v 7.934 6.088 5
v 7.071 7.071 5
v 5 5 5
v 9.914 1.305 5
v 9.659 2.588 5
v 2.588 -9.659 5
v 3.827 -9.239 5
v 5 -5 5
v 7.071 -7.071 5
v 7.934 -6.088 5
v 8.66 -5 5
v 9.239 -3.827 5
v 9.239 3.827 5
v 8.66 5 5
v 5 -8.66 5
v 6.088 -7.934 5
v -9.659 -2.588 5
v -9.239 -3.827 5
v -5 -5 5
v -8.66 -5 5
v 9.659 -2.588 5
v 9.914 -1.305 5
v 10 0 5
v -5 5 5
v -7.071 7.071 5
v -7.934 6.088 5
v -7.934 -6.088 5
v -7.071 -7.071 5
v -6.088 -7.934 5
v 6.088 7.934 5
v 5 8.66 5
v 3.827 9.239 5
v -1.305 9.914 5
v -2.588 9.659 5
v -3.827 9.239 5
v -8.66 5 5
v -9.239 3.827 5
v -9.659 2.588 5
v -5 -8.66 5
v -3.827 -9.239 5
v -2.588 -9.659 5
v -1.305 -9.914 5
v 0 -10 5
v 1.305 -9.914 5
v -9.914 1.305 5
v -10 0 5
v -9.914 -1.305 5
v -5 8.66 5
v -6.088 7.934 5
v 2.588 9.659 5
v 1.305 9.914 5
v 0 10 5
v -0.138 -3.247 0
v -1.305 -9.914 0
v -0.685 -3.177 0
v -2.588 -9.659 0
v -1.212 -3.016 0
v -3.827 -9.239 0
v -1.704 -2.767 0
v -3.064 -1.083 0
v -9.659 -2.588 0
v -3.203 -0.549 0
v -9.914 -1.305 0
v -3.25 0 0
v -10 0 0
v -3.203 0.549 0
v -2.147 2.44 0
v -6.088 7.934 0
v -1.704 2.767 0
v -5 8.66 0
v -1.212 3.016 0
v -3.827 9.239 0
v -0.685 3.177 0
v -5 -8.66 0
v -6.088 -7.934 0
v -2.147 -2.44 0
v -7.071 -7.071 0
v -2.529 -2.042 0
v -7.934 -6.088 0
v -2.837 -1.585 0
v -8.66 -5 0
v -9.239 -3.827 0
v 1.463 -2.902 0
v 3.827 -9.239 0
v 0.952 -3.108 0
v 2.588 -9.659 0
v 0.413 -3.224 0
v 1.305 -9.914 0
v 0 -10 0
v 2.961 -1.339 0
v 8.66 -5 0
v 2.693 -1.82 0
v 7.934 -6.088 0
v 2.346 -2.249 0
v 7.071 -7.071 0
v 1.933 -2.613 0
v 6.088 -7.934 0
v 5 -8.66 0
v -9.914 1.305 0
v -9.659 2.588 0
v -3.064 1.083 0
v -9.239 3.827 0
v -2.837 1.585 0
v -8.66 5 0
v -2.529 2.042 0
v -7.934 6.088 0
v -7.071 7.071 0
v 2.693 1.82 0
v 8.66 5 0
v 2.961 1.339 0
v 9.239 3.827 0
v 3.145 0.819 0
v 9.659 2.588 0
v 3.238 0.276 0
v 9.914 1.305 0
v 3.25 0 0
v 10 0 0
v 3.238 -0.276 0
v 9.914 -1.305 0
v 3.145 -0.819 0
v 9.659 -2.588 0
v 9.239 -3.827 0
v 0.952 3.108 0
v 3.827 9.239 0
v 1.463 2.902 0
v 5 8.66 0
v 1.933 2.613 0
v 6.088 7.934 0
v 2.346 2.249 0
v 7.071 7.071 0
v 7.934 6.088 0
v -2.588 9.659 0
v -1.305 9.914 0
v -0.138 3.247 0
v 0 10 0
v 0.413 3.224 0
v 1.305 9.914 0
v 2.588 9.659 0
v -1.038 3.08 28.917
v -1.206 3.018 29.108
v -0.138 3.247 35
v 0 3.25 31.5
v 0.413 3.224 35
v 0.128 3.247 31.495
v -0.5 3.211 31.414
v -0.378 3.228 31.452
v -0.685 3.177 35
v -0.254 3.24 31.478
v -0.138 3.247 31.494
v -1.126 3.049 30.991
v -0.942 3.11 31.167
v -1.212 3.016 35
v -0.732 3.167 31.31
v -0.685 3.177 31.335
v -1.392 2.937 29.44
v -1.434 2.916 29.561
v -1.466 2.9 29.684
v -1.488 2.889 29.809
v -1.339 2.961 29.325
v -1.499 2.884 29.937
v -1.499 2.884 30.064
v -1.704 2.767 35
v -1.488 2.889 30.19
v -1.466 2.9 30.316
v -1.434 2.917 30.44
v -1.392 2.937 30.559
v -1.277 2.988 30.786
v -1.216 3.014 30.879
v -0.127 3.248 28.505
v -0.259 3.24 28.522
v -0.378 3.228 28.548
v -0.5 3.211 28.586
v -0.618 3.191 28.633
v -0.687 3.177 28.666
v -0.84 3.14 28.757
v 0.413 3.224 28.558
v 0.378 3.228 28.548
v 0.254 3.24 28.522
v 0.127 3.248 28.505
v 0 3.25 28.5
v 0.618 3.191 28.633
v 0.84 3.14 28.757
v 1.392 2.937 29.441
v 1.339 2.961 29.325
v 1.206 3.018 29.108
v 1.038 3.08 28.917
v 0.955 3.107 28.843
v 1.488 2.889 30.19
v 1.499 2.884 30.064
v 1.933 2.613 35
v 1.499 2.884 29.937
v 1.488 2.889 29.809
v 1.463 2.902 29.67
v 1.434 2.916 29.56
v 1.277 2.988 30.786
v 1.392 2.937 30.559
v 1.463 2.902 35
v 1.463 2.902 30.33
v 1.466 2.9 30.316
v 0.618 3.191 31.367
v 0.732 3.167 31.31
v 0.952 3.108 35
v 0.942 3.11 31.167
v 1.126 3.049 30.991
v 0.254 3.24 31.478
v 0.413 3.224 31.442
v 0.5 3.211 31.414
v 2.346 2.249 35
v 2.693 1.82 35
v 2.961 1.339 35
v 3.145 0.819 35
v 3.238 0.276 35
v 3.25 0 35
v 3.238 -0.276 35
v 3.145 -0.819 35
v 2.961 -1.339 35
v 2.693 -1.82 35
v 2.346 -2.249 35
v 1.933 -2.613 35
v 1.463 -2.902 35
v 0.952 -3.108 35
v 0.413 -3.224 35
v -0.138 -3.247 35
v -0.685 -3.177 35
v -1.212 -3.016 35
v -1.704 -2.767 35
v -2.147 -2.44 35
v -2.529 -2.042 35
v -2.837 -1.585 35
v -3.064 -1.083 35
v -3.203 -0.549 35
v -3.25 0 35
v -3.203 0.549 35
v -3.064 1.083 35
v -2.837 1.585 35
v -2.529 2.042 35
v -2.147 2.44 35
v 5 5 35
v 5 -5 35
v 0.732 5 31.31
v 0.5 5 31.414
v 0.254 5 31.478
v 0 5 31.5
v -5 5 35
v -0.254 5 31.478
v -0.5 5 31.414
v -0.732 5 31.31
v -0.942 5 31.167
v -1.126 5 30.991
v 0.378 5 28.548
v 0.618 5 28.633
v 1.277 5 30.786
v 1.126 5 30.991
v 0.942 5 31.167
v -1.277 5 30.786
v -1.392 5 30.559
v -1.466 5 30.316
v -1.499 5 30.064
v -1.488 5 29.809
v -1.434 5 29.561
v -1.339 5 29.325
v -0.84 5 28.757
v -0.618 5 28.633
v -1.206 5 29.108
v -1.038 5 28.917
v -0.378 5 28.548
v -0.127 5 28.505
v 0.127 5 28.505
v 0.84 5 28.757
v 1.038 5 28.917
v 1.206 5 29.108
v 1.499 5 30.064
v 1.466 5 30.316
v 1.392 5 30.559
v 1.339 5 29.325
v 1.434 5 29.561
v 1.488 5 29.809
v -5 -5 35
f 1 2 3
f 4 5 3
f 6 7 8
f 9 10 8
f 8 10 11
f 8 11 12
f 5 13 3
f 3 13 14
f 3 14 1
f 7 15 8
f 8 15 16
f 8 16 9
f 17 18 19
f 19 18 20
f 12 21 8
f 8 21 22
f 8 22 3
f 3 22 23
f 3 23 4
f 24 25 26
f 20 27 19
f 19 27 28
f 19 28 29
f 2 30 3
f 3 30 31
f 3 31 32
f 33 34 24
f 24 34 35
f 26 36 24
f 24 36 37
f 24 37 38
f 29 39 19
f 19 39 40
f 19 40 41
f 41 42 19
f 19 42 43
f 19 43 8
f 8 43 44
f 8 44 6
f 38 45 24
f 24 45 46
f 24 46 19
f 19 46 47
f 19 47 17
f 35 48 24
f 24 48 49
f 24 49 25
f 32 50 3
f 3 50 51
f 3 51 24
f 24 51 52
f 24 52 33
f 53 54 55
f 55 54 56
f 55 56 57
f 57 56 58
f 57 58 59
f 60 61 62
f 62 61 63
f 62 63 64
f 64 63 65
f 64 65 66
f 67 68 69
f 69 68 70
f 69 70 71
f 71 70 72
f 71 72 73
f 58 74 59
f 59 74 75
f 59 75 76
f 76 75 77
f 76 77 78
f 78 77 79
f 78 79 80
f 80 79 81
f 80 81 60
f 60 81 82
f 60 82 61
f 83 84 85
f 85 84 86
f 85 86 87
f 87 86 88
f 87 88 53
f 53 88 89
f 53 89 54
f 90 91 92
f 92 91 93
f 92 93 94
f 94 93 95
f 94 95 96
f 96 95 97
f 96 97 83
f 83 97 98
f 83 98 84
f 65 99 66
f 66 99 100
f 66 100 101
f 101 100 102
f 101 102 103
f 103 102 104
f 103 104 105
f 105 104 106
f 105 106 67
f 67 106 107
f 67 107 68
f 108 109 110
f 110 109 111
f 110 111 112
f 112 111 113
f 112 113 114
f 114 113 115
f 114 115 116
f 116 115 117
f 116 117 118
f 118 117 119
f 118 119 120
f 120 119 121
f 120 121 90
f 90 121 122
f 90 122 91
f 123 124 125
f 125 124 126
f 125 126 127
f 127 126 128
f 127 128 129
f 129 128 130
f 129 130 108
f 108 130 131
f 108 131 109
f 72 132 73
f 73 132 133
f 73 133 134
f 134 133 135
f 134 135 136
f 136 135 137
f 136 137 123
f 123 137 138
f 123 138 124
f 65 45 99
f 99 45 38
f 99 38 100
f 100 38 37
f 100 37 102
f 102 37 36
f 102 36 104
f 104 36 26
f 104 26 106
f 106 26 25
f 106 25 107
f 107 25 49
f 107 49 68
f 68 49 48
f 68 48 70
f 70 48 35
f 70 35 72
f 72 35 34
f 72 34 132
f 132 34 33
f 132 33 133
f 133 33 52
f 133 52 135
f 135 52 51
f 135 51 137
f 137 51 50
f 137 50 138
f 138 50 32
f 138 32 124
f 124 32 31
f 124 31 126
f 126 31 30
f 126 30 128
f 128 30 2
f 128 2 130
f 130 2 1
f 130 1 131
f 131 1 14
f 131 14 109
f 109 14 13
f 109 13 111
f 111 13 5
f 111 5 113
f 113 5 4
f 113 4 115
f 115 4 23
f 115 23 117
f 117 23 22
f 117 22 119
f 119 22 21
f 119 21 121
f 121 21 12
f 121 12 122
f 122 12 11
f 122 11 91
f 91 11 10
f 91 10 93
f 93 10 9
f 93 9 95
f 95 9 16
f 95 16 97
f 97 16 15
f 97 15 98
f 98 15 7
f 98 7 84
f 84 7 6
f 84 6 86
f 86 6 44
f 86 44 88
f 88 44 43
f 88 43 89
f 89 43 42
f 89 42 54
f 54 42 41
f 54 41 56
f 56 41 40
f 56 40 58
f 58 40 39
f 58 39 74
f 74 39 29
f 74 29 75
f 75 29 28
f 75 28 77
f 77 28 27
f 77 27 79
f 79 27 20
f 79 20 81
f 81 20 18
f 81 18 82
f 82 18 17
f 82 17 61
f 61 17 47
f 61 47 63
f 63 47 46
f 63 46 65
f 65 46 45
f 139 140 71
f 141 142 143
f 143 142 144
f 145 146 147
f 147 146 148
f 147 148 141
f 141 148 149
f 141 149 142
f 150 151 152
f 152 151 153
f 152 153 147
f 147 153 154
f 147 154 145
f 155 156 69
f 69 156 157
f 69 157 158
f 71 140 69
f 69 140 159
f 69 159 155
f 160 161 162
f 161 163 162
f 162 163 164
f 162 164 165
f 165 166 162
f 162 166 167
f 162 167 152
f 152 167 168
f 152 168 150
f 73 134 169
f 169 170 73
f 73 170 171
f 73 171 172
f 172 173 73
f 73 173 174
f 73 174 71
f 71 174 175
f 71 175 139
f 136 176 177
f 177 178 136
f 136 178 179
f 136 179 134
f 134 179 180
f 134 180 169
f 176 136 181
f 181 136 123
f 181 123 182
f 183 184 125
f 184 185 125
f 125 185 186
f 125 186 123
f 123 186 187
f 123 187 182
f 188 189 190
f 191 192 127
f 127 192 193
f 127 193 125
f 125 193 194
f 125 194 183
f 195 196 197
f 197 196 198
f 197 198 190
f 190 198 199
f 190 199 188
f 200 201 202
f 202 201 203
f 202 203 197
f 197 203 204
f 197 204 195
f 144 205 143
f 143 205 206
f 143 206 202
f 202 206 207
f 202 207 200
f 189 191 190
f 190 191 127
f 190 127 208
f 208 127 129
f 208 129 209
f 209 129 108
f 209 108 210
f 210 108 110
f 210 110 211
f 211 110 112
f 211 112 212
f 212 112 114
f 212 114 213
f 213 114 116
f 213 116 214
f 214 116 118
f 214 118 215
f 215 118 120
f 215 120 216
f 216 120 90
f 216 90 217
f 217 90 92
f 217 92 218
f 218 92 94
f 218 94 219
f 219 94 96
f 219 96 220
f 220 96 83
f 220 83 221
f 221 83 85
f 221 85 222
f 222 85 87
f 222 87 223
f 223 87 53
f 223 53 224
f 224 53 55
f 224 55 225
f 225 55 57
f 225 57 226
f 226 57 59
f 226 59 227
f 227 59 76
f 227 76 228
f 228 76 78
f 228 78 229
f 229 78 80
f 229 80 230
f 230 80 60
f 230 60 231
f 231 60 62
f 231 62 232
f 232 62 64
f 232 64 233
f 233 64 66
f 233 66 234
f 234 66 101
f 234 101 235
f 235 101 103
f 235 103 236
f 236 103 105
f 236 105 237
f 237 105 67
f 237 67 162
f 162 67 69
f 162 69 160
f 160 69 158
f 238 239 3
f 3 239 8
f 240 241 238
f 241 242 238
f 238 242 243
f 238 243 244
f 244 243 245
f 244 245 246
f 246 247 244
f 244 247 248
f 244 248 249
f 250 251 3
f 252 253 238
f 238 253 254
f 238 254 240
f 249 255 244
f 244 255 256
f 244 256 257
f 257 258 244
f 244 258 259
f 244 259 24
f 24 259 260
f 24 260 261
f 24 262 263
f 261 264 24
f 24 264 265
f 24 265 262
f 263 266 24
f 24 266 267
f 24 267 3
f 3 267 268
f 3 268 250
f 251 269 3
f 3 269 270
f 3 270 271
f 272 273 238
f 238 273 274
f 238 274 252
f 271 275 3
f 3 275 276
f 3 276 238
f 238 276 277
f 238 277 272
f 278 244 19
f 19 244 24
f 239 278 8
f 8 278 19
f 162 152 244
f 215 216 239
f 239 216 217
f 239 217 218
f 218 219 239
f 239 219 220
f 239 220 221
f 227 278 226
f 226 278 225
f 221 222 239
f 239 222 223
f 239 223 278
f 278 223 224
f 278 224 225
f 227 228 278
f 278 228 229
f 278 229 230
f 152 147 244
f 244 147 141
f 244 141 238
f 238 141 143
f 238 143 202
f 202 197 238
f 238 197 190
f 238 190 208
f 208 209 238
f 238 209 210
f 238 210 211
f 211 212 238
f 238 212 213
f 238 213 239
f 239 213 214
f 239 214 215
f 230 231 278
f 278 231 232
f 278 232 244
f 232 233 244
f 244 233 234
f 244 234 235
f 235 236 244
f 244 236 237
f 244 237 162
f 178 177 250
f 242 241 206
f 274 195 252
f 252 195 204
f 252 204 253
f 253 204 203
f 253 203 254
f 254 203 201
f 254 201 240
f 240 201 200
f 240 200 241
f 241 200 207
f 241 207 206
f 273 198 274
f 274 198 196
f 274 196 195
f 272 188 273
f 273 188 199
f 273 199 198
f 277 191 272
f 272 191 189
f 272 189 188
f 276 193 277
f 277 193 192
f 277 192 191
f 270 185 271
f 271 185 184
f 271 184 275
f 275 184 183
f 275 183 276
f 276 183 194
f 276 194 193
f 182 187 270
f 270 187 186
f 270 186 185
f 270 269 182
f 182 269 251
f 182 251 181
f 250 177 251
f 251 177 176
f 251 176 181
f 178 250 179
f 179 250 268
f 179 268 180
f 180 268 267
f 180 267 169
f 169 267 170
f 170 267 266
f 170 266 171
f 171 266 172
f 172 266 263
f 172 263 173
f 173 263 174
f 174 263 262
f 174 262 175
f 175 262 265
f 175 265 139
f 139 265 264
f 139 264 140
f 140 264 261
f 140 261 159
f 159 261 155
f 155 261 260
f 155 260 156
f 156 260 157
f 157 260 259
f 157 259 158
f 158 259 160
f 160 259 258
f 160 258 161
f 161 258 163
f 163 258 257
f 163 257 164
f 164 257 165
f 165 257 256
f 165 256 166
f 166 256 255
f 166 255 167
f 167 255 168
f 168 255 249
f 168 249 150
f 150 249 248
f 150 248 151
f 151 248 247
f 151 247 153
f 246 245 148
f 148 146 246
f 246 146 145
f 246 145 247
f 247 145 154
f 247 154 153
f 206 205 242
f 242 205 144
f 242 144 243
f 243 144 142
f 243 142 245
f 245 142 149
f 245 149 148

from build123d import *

# Parameters (mm, degrees)
SKETCH_1_R          = 10
SKETCH_1_R_2        = 3.25
EXTRUDE_1_DEPTH     = 5
SKETCH_2_W          = 10
SKETCH_2_H          = 10
EXTRUDE_4_DEPTH     = 30
CUT_EXTRUDE_START   = -30
SKETCH_6_R          = 3.25
CUT_EXTRUDE_1_DEPTH = 30
SKETCH_7_R          = 1.5
CUT_EXTRUDE_3_DEPTH = 5


with BuildPart() as part:
    # Эскиз1 → Бобышка-Вытянуть1 (new body)
    with BuildSketch(Plane.XY):
        Circle(SKETCH_1_R)
        Circle(SKETCH_1_R_2, mode=Mode.SUBTRACT)
    extrude(amount=EXTRUDE_1_DEPTH)

    # Эскиз2 → Бобышка-Вытянуть4 (add)
    with BuildSketch(Plane.XY.offset(5)):
        Rectangle(SKETCH_2_W, SKETCH_2_H)
    extrude(amount=EXTRUDE_4_DEPTH)

    # Эскиз6 → Вырез-Вытянуть1 (cut)
    with BuildSketch(Plane.XY.offset(35).offset(CUT_EXTRUDE_START)):
        Circle(SKETCH_6_R)
    extrude(amount=CUT_EXTRUDE_1_DEPTH, mode=Mode.SUBTRACT)

    # Эскиз7 → Вырез-Вытянуть3 (cut)
    with BuildSketch(Plane(origin=(0, 5, 0), x_dir=(1, 0, 0), z_dir=(0, 1, 0))):
        with Locations(Location((0, -30, 0), (0, 0, 270))):
            Circle(SKETCH_7_R)
    extrude(amount=-CUT_EXTRUDE_3_DEPTH, mode=Mode.SUBTRACT)


solid = part.part
